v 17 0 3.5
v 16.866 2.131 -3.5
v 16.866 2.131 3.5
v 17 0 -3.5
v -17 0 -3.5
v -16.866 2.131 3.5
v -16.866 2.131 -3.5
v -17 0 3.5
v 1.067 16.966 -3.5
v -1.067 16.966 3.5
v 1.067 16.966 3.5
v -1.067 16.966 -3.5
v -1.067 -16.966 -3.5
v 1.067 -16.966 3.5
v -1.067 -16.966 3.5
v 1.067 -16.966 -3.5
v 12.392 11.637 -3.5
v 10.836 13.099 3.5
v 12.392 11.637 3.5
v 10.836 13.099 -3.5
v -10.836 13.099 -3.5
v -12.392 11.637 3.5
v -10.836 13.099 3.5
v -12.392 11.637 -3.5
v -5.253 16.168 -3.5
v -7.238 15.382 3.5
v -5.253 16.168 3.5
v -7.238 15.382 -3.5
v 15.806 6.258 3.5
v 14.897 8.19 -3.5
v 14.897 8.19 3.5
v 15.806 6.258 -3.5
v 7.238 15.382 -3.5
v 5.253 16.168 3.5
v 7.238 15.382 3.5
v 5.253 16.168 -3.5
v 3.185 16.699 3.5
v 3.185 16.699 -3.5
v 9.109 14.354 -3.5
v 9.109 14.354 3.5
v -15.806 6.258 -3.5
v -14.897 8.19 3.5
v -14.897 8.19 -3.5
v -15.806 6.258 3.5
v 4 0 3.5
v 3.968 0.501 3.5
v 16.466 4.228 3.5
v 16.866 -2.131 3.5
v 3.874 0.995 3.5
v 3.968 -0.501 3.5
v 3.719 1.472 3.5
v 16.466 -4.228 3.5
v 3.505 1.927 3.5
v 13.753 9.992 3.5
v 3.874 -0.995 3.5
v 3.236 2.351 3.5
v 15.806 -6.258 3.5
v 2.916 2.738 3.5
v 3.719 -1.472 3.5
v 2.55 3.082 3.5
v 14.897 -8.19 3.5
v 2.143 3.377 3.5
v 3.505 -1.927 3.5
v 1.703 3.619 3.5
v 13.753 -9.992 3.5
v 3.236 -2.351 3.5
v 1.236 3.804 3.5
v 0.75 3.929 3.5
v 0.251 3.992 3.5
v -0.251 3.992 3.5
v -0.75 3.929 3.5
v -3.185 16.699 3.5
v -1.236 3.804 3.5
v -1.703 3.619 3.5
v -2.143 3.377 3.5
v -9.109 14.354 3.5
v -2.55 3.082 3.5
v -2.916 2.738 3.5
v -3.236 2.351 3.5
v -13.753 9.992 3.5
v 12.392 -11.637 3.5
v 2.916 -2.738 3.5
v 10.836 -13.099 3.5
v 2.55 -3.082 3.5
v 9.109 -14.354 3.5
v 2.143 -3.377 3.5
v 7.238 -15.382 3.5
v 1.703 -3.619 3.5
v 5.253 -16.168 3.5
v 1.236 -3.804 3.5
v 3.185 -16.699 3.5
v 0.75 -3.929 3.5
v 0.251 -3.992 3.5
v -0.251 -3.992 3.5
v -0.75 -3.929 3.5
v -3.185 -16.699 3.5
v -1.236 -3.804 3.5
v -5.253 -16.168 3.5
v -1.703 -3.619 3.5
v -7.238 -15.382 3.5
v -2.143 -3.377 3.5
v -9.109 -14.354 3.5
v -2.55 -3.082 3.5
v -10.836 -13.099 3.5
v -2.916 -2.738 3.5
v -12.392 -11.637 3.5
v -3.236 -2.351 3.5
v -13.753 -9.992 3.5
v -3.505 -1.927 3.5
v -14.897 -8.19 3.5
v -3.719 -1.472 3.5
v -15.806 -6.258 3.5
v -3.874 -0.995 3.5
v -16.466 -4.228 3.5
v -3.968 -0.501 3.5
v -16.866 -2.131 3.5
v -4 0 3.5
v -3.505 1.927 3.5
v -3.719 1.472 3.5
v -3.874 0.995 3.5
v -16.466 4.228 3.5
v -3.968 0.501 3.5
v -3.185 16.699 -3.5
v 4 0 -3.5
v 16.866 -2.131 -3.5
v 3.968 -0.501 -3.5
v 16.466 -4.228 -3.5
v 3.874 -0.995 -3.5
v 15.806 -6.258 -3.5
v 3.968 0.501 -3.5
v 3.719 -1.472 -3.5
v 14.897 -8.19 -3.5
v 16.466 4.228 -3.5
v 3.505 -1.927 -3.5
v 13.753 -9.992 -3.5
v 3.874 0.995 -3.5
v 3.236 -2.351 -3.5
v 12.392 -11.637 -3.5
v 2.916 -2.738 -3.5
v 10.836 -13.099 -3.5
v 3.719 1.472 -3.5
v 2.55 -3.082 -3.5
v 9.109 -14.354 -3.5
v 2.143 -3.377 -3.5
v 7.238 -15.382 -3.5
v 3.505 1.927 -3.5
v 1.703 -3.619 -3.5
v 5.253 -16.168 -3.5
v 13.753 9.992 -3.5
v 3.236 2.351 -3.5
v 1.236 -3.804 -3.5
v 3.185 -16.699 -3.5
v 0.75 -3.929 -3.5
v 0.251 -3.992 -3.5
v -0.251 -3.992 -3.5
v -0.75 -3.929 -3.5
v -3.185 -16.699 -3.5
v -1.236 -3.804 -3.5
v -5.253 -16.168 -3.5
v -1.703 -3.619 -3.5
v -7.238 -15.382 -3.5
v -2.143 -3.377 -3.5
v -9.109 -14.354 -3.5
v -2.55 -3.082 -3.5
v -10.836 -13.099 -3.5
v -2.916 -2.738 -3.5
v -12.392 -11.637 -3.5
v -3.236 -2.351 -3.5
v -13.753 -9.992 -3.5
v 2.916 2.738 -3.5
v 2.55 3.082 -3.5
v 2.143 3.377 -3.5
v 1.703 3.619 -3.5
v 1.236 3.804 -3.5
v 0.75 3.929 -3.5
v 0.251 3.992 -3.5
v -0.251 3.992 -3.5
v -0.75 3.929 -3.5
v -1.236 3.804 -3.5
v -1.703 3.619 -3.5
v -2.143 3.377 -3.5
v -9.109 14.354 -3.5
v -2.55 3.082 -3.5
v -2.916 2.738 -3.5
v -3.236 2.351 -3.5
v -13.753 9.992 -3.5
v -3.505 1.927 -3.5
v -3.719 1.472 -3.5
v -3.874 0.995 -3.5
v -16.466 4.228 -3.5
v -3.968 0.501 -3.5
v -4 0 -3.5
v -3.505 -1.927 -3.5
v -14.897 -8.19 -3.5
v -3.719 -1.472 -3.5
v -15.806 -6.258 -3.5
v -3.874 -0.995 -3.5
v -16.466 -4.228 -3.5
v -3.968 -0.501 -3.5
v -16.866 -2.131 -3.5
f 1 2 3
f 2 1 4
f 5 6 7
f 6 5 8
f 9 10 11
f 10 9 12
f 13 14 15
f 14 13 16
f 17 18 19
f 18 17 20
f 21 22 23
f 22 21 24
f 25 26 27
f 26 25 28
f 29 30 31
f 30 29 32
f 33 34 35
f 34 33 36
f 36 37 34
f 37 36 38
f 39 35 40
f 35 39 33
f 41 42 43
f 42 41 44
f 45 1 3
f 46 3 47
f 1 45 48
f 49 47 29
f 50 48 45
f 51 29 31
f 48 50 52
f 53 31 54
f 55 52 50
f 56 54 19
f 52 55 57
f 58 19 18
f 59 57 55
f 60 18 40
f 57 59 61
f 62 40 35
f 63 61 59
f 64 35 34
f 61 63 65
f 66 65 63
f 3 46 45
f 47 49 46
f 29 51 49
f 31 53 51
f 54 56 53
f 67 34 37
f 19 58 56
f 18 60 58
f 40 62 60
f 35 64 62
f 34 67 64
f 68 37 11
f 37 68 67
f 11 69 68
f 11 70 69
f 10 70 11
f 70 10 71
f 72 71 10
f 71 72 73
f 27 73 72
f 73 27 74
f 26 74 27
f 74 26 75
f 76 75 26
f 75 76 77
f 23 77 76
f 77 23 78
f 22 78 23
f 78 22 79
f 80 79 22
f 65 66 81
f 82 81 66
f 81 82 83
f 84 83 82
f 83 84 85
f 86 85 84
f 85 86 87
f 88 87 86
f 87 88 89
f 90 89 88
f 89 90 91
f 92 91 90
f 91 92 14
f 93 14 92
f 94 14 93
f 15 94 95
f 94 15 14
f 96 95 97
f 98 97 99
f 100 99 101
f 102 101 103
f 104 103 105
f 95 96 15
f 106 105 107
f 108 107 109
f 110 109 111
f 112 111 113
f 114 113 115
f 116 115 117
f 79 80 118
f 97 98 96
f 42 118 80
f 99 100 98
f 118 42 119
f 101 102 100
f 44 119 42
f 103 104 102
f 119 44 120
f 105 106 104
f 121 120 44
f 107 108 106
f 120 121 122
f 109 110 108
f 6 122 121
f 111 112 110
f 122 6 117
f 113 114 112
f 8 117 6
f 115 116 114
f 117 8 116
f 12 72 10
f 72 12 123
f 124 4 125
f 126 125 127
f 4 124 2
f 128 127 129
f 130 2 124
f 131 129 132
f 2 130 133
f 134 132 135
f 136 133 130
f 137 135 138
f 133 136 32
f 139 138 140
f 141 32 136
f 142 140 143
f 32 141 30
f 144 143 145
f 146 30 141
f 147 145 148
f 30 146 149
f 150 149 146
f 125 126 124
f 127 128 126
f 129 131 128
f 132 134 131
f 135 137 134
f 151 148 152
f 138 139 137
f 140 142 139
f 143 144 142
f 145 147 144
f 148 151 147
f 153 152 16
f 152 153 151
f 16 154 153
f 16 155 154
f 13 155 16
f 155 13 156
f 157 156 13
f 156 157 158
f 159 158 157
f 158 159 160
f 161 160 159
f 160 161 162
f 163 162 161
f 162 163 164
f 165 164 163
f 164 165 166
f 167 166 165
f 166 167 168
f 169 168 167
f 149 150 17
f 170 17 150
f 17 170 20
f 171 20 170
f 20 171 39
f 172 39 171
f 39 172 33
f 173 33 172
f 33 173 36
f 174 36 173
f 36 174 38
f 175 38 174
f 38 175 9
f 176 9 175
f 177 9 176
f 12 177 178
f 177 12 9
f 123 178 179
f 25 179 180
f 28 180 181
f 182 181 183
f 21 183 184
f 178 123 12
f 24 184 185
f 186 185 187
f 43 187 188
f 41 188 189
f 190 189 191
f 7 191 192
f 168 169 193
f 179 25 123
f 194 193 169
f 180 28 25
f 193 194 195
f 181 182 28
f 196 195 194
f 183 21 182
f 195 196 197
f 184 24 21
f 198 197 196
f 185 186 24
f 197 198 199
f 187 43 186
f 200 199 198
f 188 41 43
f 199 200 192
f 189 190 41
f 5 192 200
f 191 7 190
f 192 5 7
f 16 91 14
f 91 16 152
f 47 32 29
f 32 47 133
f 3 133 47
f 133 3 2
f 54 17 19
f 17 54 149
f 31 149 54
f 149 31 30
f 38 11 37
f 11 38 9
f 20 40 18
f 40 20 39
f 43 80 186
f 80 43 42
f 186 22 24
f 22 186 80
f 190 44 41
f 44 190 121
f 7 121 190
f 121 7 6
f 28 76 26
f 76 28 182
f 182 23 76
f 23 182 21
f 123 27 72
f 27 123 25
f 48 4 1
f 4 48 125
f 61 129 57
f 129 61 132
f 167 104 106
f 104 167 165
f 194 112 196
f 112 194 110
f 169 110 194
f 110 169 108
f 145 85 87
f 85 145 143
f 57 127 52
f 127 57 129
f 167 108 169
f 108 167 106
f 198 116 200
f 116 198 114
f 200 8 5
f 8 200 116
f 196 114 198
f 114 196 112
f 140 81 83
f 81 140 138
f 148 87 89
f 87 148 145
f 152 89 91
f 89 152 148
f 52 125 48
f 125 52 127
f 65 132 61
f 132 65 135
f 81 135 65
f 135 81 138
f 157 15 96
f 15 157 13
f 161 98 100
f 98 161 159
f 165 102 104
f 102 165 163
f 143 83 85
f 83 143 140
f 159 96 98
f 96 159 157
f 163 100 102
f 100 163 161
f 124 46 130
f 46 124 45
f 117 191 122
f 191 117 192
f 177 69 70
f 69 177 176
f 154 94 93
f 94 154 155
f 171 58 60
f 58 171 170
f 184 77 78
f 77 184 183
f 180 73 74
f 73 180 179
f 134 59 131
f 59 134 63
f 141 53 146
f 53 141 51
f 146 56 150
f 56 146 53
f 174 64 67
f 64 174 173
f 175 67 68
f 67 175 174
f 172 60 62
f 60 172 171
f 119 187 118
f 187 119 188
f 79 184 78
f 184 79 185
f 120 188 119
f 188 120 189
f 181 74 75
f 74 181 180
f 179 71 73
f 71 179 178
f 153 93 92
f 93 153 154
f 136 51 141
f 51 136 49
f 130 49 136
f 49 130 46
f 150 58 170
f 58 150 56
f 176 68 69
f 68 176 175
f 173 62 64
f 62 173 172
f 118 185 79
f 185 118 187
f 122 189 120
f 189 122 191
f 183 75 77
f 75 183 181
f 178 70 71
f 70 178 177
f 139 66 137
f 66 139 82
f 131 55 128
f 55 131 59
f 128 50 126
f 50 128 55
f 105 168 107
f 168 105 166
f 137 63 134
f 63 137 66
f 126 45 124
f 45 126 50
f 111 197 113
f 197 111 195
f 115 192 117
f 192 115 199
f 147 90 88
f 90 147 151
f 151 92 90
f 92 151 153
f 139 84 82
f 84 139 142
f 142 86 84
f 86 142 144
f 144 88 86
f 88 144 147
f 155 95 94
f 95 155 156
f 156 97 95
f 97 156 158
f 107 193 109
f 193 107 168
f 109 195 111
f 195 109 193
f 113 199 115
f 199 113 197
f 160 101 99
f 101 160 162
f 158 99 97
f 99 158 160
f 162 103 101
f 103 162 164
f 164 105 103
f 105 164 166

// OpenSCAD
$fn = 50;


difference() {
	union() {
		translate(v = [0, 0, -3.5000000000]) {
			cylinder(h = 7, r = 17.0000000000);
		}
	}
	union() {
		translate(v = [0, 0, -100.0000000000]) {
			cylinder(h = 200, r = 4);
		}
	}
}
